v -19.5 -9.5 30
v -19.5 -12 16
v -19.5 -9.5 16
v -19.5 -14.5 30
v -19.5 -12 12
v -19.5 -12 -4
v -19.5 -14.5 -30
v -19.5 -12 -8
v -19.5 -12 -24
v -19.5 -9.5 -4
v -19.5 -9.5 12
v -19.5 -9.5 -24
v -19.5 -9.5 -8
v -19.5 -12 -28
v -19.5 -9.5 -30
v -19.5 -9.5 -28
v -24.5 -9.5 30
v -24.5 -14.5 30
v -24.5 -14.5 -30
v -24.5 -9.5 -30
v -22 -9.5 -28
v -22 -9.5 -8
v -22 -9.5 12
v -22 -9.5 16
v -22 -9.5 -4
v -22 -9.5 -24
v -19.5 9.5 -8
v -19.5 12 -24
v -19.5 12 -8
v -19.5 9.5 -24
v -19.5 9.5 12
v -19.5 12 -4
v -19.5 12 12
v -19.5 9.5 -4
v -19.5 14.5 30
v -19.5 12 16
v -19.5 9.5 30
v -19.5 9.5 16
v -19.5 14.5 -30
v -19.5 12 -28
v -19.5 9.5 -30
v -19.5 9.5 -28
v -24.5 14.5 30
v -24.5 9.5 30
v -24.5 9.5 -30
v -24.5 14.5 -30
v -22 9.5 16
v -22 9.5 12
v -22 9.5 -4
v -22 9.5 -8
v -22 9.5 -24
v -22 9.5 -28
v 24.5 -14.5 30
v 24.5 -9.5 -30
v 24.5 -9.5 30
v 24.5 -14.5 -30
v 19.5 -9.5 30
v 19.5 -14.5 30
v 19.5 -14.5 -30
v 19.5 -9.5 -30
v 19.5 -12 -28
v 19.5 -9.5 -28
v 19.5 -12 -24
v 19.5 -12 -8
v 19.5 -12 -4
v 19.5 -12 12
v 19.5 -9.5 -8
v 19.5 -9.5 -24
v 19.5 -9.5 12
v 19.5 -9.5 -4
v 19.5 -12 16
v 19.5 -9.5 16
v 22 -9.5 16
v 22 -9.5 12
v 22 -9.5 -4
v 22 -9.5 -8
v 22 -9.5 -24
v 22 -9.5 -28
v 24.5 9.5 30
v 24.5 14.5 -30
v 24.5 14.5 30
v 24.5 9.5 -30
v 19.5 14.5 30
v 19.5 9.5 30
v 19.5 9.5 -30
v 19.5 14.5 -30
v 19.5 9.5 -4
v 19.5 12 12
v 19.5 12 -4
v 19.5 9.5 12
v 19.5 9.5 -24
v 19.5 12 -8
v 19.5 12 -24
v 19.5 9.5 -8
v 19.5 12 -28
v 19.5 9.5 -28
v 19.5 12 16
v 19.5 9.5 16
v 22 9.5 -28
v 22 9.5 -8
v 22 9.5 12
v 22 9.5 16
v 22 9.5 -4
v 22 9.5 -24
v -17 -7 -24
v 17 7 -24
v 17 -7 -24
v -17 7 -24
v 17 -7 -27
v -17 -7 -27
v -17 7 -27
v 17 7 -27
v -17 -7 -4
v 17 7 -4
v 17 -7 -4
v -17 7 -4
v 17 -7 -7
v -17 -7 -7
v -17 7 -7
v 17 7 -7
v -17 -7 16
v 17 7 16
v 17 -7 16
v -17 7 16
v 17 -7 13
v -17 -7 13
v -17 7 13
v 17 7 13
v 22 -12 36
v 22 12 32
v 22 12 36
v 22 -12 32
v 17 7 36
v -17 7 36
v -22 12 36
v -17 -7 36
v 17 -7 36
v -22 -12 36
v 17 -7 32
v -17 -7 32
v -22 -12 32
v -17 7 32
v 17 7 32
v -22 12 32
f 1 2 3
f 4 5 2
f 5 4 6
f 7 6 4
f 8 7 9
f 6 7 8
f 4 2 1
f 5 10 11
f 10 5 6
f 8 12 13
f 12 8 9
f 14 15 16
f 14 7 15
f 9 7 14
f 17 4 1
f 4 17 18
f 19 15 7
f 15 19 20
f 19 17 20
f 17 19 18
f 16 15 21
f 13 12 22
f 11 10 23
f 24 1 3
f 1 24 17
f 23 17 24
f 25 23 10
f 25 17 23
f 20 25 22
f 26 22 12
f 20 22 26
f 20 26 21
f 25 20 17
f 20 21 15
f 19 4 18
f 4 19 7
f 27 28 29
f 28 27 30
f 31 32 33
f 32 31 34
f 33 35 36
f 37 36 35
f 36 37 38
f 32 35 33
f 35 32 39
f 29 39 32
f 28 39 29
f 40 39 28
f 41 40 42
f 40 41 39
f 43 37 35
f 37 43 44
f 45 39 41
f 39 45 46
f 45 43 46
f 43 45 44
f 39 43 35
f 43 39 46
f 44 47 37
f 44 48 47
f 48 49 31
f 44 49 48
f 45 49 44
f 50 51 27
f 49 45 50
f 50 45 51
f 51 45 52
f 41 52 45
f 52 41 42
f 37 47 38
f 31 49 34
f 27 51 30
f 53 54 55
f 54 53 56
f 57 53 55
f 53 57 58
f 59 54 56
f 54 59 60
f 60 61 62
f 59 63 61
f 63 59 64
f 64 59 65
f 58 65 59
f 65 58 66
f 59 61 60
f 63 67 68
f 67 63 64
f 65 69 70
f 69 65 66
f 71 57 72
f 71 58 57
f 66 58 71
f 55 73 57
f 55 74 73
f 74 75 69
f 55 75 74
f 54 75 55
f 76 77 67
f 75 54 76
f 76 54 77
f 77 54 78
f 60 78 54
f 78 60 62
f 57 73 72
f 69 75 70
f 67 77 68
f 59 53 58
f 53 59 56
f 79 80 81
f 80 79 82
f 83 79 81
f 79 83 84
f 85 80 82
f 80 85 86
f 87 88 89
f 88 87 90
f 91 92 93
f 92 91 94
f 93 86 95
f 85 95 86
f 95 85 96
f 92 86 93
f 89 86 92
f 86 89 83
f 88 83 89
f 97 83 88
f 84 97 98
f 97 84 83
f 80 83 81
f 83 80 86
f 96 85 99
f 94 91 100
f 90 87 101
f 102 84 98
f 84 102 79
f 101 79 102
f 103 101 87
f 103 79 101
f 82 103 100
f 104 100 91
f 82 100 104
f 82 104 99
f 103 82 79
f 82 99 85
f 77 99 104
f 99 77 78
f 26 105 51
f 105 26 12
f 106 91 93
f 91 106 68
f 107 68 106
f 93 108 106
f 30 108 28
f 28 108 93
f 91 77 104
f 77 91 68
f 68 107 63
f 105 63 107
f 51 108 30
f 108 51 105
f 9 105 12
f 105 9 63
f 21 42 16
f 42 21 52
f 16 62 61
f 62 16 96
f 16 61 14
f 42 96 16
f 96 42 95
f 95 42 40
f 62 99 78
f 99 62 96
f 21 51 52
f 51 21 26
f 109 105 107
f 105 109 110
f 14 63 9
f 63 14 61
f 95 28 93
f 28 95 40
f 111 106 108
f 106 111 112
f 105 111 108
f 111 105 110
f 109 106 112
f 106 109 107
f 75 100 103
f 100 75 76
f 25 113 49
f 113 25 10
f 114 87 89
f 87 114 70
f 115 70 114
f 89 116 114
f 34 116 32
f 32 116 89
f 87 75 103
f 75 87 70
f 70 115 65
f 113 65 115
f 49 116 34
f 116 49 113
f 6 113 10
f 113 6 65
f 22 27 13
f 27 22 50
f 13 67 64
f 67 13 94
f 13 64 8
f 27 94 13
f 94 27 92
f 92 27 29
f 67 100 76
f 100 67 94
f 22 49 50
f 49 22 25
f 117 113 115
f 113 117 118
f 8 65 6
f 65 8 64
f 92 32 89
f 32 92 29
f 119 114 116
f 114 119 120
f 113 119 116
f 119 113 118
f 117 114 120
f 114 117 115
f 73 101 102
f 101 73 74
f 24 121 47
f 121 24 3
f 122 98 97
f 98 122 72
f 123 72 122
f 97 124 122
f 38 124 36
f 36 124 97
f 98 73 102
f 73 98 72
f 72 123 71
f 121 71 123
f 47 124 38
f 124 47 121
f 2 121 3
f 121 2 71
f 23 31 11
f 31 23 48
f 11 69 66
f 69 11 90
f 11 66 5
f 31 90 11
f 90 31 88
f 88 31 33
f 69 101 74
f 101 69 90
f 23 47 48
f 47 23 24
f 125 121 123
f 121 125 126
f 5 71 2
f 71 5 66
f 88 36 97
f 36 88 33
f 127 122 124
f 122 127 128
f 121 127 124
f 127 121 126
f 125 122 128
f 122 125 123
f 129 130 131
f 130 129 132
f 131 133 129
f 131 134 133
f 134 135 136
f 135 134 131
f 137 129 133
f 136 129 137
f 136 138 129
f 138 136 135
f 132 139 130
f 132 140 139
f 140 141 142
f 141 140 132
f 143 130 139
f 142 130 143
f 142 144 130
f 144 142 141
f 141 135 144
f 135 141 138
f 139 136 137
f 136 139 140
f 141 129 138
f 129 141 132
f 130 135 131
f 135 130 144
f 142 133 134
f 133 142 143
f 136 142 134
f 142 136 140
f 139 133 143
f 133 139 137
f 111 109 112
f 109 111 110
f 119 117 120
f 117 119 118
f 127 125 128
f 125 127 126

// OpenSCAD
// file: _common.scad
// structure-sim 共用設定
$fn = 40;

// 桿件：從點 a 到點 b 畫一個圓柱桿
module rod(a, b, r = 1.5) {
  v = b - a;
  L = norm(v);
  // 計算旋轉到 v 方向的角度
  ay = atan2(sqrt(v[0]*v[0] + v[1]*v[1]), v[2]);
  az = atan2(v[1], v[0]);
  translate(a) rotate([0, ay, az]) cylinder(h = L, r = r);
}
// main file
// 框架 Frame — 樑+柱組成的高樓結構（3 層 × 2 柱）
include <_common.scad>

color([0.36, 0.42, 0.55]) {
  // 4 根角柱（前後左右各一）— 簡化 2 根
  for (x = [-22, 22]) for (y = [-12, 12]) {
    translate([x - 2.5, y - 2.5, -30]) cube([5, 5, 60]);
  }
  // 3 層樑（X 方向，4 條 per 層）
  for (z = [-28, -8, 12, 32]) {
    // 沿 X 方向的兩條樑
    translate([-22, -12, z]) cube([44, 5, 4]);
    translate([-22, 7, z]) cube([44, 5, 4]);
    // 沿 Y 方向的兩條樑
    translate([-22, -12, z]) cube([5, 24, 4]);
    translate([17, -12, z]) cube([5, 24, 4]);
  }
}

// 樓板（半透明示意）
color([0.86, 0.6, 0.3, 0.6]) {
  translate([-22, -12, -28]) cube([44, 24, 1]);
  translate([-22, -12, -8]) cube([44, 24, 1]);
  translate([-22, -12, 12]) cube([44, 24, 1]);
}
